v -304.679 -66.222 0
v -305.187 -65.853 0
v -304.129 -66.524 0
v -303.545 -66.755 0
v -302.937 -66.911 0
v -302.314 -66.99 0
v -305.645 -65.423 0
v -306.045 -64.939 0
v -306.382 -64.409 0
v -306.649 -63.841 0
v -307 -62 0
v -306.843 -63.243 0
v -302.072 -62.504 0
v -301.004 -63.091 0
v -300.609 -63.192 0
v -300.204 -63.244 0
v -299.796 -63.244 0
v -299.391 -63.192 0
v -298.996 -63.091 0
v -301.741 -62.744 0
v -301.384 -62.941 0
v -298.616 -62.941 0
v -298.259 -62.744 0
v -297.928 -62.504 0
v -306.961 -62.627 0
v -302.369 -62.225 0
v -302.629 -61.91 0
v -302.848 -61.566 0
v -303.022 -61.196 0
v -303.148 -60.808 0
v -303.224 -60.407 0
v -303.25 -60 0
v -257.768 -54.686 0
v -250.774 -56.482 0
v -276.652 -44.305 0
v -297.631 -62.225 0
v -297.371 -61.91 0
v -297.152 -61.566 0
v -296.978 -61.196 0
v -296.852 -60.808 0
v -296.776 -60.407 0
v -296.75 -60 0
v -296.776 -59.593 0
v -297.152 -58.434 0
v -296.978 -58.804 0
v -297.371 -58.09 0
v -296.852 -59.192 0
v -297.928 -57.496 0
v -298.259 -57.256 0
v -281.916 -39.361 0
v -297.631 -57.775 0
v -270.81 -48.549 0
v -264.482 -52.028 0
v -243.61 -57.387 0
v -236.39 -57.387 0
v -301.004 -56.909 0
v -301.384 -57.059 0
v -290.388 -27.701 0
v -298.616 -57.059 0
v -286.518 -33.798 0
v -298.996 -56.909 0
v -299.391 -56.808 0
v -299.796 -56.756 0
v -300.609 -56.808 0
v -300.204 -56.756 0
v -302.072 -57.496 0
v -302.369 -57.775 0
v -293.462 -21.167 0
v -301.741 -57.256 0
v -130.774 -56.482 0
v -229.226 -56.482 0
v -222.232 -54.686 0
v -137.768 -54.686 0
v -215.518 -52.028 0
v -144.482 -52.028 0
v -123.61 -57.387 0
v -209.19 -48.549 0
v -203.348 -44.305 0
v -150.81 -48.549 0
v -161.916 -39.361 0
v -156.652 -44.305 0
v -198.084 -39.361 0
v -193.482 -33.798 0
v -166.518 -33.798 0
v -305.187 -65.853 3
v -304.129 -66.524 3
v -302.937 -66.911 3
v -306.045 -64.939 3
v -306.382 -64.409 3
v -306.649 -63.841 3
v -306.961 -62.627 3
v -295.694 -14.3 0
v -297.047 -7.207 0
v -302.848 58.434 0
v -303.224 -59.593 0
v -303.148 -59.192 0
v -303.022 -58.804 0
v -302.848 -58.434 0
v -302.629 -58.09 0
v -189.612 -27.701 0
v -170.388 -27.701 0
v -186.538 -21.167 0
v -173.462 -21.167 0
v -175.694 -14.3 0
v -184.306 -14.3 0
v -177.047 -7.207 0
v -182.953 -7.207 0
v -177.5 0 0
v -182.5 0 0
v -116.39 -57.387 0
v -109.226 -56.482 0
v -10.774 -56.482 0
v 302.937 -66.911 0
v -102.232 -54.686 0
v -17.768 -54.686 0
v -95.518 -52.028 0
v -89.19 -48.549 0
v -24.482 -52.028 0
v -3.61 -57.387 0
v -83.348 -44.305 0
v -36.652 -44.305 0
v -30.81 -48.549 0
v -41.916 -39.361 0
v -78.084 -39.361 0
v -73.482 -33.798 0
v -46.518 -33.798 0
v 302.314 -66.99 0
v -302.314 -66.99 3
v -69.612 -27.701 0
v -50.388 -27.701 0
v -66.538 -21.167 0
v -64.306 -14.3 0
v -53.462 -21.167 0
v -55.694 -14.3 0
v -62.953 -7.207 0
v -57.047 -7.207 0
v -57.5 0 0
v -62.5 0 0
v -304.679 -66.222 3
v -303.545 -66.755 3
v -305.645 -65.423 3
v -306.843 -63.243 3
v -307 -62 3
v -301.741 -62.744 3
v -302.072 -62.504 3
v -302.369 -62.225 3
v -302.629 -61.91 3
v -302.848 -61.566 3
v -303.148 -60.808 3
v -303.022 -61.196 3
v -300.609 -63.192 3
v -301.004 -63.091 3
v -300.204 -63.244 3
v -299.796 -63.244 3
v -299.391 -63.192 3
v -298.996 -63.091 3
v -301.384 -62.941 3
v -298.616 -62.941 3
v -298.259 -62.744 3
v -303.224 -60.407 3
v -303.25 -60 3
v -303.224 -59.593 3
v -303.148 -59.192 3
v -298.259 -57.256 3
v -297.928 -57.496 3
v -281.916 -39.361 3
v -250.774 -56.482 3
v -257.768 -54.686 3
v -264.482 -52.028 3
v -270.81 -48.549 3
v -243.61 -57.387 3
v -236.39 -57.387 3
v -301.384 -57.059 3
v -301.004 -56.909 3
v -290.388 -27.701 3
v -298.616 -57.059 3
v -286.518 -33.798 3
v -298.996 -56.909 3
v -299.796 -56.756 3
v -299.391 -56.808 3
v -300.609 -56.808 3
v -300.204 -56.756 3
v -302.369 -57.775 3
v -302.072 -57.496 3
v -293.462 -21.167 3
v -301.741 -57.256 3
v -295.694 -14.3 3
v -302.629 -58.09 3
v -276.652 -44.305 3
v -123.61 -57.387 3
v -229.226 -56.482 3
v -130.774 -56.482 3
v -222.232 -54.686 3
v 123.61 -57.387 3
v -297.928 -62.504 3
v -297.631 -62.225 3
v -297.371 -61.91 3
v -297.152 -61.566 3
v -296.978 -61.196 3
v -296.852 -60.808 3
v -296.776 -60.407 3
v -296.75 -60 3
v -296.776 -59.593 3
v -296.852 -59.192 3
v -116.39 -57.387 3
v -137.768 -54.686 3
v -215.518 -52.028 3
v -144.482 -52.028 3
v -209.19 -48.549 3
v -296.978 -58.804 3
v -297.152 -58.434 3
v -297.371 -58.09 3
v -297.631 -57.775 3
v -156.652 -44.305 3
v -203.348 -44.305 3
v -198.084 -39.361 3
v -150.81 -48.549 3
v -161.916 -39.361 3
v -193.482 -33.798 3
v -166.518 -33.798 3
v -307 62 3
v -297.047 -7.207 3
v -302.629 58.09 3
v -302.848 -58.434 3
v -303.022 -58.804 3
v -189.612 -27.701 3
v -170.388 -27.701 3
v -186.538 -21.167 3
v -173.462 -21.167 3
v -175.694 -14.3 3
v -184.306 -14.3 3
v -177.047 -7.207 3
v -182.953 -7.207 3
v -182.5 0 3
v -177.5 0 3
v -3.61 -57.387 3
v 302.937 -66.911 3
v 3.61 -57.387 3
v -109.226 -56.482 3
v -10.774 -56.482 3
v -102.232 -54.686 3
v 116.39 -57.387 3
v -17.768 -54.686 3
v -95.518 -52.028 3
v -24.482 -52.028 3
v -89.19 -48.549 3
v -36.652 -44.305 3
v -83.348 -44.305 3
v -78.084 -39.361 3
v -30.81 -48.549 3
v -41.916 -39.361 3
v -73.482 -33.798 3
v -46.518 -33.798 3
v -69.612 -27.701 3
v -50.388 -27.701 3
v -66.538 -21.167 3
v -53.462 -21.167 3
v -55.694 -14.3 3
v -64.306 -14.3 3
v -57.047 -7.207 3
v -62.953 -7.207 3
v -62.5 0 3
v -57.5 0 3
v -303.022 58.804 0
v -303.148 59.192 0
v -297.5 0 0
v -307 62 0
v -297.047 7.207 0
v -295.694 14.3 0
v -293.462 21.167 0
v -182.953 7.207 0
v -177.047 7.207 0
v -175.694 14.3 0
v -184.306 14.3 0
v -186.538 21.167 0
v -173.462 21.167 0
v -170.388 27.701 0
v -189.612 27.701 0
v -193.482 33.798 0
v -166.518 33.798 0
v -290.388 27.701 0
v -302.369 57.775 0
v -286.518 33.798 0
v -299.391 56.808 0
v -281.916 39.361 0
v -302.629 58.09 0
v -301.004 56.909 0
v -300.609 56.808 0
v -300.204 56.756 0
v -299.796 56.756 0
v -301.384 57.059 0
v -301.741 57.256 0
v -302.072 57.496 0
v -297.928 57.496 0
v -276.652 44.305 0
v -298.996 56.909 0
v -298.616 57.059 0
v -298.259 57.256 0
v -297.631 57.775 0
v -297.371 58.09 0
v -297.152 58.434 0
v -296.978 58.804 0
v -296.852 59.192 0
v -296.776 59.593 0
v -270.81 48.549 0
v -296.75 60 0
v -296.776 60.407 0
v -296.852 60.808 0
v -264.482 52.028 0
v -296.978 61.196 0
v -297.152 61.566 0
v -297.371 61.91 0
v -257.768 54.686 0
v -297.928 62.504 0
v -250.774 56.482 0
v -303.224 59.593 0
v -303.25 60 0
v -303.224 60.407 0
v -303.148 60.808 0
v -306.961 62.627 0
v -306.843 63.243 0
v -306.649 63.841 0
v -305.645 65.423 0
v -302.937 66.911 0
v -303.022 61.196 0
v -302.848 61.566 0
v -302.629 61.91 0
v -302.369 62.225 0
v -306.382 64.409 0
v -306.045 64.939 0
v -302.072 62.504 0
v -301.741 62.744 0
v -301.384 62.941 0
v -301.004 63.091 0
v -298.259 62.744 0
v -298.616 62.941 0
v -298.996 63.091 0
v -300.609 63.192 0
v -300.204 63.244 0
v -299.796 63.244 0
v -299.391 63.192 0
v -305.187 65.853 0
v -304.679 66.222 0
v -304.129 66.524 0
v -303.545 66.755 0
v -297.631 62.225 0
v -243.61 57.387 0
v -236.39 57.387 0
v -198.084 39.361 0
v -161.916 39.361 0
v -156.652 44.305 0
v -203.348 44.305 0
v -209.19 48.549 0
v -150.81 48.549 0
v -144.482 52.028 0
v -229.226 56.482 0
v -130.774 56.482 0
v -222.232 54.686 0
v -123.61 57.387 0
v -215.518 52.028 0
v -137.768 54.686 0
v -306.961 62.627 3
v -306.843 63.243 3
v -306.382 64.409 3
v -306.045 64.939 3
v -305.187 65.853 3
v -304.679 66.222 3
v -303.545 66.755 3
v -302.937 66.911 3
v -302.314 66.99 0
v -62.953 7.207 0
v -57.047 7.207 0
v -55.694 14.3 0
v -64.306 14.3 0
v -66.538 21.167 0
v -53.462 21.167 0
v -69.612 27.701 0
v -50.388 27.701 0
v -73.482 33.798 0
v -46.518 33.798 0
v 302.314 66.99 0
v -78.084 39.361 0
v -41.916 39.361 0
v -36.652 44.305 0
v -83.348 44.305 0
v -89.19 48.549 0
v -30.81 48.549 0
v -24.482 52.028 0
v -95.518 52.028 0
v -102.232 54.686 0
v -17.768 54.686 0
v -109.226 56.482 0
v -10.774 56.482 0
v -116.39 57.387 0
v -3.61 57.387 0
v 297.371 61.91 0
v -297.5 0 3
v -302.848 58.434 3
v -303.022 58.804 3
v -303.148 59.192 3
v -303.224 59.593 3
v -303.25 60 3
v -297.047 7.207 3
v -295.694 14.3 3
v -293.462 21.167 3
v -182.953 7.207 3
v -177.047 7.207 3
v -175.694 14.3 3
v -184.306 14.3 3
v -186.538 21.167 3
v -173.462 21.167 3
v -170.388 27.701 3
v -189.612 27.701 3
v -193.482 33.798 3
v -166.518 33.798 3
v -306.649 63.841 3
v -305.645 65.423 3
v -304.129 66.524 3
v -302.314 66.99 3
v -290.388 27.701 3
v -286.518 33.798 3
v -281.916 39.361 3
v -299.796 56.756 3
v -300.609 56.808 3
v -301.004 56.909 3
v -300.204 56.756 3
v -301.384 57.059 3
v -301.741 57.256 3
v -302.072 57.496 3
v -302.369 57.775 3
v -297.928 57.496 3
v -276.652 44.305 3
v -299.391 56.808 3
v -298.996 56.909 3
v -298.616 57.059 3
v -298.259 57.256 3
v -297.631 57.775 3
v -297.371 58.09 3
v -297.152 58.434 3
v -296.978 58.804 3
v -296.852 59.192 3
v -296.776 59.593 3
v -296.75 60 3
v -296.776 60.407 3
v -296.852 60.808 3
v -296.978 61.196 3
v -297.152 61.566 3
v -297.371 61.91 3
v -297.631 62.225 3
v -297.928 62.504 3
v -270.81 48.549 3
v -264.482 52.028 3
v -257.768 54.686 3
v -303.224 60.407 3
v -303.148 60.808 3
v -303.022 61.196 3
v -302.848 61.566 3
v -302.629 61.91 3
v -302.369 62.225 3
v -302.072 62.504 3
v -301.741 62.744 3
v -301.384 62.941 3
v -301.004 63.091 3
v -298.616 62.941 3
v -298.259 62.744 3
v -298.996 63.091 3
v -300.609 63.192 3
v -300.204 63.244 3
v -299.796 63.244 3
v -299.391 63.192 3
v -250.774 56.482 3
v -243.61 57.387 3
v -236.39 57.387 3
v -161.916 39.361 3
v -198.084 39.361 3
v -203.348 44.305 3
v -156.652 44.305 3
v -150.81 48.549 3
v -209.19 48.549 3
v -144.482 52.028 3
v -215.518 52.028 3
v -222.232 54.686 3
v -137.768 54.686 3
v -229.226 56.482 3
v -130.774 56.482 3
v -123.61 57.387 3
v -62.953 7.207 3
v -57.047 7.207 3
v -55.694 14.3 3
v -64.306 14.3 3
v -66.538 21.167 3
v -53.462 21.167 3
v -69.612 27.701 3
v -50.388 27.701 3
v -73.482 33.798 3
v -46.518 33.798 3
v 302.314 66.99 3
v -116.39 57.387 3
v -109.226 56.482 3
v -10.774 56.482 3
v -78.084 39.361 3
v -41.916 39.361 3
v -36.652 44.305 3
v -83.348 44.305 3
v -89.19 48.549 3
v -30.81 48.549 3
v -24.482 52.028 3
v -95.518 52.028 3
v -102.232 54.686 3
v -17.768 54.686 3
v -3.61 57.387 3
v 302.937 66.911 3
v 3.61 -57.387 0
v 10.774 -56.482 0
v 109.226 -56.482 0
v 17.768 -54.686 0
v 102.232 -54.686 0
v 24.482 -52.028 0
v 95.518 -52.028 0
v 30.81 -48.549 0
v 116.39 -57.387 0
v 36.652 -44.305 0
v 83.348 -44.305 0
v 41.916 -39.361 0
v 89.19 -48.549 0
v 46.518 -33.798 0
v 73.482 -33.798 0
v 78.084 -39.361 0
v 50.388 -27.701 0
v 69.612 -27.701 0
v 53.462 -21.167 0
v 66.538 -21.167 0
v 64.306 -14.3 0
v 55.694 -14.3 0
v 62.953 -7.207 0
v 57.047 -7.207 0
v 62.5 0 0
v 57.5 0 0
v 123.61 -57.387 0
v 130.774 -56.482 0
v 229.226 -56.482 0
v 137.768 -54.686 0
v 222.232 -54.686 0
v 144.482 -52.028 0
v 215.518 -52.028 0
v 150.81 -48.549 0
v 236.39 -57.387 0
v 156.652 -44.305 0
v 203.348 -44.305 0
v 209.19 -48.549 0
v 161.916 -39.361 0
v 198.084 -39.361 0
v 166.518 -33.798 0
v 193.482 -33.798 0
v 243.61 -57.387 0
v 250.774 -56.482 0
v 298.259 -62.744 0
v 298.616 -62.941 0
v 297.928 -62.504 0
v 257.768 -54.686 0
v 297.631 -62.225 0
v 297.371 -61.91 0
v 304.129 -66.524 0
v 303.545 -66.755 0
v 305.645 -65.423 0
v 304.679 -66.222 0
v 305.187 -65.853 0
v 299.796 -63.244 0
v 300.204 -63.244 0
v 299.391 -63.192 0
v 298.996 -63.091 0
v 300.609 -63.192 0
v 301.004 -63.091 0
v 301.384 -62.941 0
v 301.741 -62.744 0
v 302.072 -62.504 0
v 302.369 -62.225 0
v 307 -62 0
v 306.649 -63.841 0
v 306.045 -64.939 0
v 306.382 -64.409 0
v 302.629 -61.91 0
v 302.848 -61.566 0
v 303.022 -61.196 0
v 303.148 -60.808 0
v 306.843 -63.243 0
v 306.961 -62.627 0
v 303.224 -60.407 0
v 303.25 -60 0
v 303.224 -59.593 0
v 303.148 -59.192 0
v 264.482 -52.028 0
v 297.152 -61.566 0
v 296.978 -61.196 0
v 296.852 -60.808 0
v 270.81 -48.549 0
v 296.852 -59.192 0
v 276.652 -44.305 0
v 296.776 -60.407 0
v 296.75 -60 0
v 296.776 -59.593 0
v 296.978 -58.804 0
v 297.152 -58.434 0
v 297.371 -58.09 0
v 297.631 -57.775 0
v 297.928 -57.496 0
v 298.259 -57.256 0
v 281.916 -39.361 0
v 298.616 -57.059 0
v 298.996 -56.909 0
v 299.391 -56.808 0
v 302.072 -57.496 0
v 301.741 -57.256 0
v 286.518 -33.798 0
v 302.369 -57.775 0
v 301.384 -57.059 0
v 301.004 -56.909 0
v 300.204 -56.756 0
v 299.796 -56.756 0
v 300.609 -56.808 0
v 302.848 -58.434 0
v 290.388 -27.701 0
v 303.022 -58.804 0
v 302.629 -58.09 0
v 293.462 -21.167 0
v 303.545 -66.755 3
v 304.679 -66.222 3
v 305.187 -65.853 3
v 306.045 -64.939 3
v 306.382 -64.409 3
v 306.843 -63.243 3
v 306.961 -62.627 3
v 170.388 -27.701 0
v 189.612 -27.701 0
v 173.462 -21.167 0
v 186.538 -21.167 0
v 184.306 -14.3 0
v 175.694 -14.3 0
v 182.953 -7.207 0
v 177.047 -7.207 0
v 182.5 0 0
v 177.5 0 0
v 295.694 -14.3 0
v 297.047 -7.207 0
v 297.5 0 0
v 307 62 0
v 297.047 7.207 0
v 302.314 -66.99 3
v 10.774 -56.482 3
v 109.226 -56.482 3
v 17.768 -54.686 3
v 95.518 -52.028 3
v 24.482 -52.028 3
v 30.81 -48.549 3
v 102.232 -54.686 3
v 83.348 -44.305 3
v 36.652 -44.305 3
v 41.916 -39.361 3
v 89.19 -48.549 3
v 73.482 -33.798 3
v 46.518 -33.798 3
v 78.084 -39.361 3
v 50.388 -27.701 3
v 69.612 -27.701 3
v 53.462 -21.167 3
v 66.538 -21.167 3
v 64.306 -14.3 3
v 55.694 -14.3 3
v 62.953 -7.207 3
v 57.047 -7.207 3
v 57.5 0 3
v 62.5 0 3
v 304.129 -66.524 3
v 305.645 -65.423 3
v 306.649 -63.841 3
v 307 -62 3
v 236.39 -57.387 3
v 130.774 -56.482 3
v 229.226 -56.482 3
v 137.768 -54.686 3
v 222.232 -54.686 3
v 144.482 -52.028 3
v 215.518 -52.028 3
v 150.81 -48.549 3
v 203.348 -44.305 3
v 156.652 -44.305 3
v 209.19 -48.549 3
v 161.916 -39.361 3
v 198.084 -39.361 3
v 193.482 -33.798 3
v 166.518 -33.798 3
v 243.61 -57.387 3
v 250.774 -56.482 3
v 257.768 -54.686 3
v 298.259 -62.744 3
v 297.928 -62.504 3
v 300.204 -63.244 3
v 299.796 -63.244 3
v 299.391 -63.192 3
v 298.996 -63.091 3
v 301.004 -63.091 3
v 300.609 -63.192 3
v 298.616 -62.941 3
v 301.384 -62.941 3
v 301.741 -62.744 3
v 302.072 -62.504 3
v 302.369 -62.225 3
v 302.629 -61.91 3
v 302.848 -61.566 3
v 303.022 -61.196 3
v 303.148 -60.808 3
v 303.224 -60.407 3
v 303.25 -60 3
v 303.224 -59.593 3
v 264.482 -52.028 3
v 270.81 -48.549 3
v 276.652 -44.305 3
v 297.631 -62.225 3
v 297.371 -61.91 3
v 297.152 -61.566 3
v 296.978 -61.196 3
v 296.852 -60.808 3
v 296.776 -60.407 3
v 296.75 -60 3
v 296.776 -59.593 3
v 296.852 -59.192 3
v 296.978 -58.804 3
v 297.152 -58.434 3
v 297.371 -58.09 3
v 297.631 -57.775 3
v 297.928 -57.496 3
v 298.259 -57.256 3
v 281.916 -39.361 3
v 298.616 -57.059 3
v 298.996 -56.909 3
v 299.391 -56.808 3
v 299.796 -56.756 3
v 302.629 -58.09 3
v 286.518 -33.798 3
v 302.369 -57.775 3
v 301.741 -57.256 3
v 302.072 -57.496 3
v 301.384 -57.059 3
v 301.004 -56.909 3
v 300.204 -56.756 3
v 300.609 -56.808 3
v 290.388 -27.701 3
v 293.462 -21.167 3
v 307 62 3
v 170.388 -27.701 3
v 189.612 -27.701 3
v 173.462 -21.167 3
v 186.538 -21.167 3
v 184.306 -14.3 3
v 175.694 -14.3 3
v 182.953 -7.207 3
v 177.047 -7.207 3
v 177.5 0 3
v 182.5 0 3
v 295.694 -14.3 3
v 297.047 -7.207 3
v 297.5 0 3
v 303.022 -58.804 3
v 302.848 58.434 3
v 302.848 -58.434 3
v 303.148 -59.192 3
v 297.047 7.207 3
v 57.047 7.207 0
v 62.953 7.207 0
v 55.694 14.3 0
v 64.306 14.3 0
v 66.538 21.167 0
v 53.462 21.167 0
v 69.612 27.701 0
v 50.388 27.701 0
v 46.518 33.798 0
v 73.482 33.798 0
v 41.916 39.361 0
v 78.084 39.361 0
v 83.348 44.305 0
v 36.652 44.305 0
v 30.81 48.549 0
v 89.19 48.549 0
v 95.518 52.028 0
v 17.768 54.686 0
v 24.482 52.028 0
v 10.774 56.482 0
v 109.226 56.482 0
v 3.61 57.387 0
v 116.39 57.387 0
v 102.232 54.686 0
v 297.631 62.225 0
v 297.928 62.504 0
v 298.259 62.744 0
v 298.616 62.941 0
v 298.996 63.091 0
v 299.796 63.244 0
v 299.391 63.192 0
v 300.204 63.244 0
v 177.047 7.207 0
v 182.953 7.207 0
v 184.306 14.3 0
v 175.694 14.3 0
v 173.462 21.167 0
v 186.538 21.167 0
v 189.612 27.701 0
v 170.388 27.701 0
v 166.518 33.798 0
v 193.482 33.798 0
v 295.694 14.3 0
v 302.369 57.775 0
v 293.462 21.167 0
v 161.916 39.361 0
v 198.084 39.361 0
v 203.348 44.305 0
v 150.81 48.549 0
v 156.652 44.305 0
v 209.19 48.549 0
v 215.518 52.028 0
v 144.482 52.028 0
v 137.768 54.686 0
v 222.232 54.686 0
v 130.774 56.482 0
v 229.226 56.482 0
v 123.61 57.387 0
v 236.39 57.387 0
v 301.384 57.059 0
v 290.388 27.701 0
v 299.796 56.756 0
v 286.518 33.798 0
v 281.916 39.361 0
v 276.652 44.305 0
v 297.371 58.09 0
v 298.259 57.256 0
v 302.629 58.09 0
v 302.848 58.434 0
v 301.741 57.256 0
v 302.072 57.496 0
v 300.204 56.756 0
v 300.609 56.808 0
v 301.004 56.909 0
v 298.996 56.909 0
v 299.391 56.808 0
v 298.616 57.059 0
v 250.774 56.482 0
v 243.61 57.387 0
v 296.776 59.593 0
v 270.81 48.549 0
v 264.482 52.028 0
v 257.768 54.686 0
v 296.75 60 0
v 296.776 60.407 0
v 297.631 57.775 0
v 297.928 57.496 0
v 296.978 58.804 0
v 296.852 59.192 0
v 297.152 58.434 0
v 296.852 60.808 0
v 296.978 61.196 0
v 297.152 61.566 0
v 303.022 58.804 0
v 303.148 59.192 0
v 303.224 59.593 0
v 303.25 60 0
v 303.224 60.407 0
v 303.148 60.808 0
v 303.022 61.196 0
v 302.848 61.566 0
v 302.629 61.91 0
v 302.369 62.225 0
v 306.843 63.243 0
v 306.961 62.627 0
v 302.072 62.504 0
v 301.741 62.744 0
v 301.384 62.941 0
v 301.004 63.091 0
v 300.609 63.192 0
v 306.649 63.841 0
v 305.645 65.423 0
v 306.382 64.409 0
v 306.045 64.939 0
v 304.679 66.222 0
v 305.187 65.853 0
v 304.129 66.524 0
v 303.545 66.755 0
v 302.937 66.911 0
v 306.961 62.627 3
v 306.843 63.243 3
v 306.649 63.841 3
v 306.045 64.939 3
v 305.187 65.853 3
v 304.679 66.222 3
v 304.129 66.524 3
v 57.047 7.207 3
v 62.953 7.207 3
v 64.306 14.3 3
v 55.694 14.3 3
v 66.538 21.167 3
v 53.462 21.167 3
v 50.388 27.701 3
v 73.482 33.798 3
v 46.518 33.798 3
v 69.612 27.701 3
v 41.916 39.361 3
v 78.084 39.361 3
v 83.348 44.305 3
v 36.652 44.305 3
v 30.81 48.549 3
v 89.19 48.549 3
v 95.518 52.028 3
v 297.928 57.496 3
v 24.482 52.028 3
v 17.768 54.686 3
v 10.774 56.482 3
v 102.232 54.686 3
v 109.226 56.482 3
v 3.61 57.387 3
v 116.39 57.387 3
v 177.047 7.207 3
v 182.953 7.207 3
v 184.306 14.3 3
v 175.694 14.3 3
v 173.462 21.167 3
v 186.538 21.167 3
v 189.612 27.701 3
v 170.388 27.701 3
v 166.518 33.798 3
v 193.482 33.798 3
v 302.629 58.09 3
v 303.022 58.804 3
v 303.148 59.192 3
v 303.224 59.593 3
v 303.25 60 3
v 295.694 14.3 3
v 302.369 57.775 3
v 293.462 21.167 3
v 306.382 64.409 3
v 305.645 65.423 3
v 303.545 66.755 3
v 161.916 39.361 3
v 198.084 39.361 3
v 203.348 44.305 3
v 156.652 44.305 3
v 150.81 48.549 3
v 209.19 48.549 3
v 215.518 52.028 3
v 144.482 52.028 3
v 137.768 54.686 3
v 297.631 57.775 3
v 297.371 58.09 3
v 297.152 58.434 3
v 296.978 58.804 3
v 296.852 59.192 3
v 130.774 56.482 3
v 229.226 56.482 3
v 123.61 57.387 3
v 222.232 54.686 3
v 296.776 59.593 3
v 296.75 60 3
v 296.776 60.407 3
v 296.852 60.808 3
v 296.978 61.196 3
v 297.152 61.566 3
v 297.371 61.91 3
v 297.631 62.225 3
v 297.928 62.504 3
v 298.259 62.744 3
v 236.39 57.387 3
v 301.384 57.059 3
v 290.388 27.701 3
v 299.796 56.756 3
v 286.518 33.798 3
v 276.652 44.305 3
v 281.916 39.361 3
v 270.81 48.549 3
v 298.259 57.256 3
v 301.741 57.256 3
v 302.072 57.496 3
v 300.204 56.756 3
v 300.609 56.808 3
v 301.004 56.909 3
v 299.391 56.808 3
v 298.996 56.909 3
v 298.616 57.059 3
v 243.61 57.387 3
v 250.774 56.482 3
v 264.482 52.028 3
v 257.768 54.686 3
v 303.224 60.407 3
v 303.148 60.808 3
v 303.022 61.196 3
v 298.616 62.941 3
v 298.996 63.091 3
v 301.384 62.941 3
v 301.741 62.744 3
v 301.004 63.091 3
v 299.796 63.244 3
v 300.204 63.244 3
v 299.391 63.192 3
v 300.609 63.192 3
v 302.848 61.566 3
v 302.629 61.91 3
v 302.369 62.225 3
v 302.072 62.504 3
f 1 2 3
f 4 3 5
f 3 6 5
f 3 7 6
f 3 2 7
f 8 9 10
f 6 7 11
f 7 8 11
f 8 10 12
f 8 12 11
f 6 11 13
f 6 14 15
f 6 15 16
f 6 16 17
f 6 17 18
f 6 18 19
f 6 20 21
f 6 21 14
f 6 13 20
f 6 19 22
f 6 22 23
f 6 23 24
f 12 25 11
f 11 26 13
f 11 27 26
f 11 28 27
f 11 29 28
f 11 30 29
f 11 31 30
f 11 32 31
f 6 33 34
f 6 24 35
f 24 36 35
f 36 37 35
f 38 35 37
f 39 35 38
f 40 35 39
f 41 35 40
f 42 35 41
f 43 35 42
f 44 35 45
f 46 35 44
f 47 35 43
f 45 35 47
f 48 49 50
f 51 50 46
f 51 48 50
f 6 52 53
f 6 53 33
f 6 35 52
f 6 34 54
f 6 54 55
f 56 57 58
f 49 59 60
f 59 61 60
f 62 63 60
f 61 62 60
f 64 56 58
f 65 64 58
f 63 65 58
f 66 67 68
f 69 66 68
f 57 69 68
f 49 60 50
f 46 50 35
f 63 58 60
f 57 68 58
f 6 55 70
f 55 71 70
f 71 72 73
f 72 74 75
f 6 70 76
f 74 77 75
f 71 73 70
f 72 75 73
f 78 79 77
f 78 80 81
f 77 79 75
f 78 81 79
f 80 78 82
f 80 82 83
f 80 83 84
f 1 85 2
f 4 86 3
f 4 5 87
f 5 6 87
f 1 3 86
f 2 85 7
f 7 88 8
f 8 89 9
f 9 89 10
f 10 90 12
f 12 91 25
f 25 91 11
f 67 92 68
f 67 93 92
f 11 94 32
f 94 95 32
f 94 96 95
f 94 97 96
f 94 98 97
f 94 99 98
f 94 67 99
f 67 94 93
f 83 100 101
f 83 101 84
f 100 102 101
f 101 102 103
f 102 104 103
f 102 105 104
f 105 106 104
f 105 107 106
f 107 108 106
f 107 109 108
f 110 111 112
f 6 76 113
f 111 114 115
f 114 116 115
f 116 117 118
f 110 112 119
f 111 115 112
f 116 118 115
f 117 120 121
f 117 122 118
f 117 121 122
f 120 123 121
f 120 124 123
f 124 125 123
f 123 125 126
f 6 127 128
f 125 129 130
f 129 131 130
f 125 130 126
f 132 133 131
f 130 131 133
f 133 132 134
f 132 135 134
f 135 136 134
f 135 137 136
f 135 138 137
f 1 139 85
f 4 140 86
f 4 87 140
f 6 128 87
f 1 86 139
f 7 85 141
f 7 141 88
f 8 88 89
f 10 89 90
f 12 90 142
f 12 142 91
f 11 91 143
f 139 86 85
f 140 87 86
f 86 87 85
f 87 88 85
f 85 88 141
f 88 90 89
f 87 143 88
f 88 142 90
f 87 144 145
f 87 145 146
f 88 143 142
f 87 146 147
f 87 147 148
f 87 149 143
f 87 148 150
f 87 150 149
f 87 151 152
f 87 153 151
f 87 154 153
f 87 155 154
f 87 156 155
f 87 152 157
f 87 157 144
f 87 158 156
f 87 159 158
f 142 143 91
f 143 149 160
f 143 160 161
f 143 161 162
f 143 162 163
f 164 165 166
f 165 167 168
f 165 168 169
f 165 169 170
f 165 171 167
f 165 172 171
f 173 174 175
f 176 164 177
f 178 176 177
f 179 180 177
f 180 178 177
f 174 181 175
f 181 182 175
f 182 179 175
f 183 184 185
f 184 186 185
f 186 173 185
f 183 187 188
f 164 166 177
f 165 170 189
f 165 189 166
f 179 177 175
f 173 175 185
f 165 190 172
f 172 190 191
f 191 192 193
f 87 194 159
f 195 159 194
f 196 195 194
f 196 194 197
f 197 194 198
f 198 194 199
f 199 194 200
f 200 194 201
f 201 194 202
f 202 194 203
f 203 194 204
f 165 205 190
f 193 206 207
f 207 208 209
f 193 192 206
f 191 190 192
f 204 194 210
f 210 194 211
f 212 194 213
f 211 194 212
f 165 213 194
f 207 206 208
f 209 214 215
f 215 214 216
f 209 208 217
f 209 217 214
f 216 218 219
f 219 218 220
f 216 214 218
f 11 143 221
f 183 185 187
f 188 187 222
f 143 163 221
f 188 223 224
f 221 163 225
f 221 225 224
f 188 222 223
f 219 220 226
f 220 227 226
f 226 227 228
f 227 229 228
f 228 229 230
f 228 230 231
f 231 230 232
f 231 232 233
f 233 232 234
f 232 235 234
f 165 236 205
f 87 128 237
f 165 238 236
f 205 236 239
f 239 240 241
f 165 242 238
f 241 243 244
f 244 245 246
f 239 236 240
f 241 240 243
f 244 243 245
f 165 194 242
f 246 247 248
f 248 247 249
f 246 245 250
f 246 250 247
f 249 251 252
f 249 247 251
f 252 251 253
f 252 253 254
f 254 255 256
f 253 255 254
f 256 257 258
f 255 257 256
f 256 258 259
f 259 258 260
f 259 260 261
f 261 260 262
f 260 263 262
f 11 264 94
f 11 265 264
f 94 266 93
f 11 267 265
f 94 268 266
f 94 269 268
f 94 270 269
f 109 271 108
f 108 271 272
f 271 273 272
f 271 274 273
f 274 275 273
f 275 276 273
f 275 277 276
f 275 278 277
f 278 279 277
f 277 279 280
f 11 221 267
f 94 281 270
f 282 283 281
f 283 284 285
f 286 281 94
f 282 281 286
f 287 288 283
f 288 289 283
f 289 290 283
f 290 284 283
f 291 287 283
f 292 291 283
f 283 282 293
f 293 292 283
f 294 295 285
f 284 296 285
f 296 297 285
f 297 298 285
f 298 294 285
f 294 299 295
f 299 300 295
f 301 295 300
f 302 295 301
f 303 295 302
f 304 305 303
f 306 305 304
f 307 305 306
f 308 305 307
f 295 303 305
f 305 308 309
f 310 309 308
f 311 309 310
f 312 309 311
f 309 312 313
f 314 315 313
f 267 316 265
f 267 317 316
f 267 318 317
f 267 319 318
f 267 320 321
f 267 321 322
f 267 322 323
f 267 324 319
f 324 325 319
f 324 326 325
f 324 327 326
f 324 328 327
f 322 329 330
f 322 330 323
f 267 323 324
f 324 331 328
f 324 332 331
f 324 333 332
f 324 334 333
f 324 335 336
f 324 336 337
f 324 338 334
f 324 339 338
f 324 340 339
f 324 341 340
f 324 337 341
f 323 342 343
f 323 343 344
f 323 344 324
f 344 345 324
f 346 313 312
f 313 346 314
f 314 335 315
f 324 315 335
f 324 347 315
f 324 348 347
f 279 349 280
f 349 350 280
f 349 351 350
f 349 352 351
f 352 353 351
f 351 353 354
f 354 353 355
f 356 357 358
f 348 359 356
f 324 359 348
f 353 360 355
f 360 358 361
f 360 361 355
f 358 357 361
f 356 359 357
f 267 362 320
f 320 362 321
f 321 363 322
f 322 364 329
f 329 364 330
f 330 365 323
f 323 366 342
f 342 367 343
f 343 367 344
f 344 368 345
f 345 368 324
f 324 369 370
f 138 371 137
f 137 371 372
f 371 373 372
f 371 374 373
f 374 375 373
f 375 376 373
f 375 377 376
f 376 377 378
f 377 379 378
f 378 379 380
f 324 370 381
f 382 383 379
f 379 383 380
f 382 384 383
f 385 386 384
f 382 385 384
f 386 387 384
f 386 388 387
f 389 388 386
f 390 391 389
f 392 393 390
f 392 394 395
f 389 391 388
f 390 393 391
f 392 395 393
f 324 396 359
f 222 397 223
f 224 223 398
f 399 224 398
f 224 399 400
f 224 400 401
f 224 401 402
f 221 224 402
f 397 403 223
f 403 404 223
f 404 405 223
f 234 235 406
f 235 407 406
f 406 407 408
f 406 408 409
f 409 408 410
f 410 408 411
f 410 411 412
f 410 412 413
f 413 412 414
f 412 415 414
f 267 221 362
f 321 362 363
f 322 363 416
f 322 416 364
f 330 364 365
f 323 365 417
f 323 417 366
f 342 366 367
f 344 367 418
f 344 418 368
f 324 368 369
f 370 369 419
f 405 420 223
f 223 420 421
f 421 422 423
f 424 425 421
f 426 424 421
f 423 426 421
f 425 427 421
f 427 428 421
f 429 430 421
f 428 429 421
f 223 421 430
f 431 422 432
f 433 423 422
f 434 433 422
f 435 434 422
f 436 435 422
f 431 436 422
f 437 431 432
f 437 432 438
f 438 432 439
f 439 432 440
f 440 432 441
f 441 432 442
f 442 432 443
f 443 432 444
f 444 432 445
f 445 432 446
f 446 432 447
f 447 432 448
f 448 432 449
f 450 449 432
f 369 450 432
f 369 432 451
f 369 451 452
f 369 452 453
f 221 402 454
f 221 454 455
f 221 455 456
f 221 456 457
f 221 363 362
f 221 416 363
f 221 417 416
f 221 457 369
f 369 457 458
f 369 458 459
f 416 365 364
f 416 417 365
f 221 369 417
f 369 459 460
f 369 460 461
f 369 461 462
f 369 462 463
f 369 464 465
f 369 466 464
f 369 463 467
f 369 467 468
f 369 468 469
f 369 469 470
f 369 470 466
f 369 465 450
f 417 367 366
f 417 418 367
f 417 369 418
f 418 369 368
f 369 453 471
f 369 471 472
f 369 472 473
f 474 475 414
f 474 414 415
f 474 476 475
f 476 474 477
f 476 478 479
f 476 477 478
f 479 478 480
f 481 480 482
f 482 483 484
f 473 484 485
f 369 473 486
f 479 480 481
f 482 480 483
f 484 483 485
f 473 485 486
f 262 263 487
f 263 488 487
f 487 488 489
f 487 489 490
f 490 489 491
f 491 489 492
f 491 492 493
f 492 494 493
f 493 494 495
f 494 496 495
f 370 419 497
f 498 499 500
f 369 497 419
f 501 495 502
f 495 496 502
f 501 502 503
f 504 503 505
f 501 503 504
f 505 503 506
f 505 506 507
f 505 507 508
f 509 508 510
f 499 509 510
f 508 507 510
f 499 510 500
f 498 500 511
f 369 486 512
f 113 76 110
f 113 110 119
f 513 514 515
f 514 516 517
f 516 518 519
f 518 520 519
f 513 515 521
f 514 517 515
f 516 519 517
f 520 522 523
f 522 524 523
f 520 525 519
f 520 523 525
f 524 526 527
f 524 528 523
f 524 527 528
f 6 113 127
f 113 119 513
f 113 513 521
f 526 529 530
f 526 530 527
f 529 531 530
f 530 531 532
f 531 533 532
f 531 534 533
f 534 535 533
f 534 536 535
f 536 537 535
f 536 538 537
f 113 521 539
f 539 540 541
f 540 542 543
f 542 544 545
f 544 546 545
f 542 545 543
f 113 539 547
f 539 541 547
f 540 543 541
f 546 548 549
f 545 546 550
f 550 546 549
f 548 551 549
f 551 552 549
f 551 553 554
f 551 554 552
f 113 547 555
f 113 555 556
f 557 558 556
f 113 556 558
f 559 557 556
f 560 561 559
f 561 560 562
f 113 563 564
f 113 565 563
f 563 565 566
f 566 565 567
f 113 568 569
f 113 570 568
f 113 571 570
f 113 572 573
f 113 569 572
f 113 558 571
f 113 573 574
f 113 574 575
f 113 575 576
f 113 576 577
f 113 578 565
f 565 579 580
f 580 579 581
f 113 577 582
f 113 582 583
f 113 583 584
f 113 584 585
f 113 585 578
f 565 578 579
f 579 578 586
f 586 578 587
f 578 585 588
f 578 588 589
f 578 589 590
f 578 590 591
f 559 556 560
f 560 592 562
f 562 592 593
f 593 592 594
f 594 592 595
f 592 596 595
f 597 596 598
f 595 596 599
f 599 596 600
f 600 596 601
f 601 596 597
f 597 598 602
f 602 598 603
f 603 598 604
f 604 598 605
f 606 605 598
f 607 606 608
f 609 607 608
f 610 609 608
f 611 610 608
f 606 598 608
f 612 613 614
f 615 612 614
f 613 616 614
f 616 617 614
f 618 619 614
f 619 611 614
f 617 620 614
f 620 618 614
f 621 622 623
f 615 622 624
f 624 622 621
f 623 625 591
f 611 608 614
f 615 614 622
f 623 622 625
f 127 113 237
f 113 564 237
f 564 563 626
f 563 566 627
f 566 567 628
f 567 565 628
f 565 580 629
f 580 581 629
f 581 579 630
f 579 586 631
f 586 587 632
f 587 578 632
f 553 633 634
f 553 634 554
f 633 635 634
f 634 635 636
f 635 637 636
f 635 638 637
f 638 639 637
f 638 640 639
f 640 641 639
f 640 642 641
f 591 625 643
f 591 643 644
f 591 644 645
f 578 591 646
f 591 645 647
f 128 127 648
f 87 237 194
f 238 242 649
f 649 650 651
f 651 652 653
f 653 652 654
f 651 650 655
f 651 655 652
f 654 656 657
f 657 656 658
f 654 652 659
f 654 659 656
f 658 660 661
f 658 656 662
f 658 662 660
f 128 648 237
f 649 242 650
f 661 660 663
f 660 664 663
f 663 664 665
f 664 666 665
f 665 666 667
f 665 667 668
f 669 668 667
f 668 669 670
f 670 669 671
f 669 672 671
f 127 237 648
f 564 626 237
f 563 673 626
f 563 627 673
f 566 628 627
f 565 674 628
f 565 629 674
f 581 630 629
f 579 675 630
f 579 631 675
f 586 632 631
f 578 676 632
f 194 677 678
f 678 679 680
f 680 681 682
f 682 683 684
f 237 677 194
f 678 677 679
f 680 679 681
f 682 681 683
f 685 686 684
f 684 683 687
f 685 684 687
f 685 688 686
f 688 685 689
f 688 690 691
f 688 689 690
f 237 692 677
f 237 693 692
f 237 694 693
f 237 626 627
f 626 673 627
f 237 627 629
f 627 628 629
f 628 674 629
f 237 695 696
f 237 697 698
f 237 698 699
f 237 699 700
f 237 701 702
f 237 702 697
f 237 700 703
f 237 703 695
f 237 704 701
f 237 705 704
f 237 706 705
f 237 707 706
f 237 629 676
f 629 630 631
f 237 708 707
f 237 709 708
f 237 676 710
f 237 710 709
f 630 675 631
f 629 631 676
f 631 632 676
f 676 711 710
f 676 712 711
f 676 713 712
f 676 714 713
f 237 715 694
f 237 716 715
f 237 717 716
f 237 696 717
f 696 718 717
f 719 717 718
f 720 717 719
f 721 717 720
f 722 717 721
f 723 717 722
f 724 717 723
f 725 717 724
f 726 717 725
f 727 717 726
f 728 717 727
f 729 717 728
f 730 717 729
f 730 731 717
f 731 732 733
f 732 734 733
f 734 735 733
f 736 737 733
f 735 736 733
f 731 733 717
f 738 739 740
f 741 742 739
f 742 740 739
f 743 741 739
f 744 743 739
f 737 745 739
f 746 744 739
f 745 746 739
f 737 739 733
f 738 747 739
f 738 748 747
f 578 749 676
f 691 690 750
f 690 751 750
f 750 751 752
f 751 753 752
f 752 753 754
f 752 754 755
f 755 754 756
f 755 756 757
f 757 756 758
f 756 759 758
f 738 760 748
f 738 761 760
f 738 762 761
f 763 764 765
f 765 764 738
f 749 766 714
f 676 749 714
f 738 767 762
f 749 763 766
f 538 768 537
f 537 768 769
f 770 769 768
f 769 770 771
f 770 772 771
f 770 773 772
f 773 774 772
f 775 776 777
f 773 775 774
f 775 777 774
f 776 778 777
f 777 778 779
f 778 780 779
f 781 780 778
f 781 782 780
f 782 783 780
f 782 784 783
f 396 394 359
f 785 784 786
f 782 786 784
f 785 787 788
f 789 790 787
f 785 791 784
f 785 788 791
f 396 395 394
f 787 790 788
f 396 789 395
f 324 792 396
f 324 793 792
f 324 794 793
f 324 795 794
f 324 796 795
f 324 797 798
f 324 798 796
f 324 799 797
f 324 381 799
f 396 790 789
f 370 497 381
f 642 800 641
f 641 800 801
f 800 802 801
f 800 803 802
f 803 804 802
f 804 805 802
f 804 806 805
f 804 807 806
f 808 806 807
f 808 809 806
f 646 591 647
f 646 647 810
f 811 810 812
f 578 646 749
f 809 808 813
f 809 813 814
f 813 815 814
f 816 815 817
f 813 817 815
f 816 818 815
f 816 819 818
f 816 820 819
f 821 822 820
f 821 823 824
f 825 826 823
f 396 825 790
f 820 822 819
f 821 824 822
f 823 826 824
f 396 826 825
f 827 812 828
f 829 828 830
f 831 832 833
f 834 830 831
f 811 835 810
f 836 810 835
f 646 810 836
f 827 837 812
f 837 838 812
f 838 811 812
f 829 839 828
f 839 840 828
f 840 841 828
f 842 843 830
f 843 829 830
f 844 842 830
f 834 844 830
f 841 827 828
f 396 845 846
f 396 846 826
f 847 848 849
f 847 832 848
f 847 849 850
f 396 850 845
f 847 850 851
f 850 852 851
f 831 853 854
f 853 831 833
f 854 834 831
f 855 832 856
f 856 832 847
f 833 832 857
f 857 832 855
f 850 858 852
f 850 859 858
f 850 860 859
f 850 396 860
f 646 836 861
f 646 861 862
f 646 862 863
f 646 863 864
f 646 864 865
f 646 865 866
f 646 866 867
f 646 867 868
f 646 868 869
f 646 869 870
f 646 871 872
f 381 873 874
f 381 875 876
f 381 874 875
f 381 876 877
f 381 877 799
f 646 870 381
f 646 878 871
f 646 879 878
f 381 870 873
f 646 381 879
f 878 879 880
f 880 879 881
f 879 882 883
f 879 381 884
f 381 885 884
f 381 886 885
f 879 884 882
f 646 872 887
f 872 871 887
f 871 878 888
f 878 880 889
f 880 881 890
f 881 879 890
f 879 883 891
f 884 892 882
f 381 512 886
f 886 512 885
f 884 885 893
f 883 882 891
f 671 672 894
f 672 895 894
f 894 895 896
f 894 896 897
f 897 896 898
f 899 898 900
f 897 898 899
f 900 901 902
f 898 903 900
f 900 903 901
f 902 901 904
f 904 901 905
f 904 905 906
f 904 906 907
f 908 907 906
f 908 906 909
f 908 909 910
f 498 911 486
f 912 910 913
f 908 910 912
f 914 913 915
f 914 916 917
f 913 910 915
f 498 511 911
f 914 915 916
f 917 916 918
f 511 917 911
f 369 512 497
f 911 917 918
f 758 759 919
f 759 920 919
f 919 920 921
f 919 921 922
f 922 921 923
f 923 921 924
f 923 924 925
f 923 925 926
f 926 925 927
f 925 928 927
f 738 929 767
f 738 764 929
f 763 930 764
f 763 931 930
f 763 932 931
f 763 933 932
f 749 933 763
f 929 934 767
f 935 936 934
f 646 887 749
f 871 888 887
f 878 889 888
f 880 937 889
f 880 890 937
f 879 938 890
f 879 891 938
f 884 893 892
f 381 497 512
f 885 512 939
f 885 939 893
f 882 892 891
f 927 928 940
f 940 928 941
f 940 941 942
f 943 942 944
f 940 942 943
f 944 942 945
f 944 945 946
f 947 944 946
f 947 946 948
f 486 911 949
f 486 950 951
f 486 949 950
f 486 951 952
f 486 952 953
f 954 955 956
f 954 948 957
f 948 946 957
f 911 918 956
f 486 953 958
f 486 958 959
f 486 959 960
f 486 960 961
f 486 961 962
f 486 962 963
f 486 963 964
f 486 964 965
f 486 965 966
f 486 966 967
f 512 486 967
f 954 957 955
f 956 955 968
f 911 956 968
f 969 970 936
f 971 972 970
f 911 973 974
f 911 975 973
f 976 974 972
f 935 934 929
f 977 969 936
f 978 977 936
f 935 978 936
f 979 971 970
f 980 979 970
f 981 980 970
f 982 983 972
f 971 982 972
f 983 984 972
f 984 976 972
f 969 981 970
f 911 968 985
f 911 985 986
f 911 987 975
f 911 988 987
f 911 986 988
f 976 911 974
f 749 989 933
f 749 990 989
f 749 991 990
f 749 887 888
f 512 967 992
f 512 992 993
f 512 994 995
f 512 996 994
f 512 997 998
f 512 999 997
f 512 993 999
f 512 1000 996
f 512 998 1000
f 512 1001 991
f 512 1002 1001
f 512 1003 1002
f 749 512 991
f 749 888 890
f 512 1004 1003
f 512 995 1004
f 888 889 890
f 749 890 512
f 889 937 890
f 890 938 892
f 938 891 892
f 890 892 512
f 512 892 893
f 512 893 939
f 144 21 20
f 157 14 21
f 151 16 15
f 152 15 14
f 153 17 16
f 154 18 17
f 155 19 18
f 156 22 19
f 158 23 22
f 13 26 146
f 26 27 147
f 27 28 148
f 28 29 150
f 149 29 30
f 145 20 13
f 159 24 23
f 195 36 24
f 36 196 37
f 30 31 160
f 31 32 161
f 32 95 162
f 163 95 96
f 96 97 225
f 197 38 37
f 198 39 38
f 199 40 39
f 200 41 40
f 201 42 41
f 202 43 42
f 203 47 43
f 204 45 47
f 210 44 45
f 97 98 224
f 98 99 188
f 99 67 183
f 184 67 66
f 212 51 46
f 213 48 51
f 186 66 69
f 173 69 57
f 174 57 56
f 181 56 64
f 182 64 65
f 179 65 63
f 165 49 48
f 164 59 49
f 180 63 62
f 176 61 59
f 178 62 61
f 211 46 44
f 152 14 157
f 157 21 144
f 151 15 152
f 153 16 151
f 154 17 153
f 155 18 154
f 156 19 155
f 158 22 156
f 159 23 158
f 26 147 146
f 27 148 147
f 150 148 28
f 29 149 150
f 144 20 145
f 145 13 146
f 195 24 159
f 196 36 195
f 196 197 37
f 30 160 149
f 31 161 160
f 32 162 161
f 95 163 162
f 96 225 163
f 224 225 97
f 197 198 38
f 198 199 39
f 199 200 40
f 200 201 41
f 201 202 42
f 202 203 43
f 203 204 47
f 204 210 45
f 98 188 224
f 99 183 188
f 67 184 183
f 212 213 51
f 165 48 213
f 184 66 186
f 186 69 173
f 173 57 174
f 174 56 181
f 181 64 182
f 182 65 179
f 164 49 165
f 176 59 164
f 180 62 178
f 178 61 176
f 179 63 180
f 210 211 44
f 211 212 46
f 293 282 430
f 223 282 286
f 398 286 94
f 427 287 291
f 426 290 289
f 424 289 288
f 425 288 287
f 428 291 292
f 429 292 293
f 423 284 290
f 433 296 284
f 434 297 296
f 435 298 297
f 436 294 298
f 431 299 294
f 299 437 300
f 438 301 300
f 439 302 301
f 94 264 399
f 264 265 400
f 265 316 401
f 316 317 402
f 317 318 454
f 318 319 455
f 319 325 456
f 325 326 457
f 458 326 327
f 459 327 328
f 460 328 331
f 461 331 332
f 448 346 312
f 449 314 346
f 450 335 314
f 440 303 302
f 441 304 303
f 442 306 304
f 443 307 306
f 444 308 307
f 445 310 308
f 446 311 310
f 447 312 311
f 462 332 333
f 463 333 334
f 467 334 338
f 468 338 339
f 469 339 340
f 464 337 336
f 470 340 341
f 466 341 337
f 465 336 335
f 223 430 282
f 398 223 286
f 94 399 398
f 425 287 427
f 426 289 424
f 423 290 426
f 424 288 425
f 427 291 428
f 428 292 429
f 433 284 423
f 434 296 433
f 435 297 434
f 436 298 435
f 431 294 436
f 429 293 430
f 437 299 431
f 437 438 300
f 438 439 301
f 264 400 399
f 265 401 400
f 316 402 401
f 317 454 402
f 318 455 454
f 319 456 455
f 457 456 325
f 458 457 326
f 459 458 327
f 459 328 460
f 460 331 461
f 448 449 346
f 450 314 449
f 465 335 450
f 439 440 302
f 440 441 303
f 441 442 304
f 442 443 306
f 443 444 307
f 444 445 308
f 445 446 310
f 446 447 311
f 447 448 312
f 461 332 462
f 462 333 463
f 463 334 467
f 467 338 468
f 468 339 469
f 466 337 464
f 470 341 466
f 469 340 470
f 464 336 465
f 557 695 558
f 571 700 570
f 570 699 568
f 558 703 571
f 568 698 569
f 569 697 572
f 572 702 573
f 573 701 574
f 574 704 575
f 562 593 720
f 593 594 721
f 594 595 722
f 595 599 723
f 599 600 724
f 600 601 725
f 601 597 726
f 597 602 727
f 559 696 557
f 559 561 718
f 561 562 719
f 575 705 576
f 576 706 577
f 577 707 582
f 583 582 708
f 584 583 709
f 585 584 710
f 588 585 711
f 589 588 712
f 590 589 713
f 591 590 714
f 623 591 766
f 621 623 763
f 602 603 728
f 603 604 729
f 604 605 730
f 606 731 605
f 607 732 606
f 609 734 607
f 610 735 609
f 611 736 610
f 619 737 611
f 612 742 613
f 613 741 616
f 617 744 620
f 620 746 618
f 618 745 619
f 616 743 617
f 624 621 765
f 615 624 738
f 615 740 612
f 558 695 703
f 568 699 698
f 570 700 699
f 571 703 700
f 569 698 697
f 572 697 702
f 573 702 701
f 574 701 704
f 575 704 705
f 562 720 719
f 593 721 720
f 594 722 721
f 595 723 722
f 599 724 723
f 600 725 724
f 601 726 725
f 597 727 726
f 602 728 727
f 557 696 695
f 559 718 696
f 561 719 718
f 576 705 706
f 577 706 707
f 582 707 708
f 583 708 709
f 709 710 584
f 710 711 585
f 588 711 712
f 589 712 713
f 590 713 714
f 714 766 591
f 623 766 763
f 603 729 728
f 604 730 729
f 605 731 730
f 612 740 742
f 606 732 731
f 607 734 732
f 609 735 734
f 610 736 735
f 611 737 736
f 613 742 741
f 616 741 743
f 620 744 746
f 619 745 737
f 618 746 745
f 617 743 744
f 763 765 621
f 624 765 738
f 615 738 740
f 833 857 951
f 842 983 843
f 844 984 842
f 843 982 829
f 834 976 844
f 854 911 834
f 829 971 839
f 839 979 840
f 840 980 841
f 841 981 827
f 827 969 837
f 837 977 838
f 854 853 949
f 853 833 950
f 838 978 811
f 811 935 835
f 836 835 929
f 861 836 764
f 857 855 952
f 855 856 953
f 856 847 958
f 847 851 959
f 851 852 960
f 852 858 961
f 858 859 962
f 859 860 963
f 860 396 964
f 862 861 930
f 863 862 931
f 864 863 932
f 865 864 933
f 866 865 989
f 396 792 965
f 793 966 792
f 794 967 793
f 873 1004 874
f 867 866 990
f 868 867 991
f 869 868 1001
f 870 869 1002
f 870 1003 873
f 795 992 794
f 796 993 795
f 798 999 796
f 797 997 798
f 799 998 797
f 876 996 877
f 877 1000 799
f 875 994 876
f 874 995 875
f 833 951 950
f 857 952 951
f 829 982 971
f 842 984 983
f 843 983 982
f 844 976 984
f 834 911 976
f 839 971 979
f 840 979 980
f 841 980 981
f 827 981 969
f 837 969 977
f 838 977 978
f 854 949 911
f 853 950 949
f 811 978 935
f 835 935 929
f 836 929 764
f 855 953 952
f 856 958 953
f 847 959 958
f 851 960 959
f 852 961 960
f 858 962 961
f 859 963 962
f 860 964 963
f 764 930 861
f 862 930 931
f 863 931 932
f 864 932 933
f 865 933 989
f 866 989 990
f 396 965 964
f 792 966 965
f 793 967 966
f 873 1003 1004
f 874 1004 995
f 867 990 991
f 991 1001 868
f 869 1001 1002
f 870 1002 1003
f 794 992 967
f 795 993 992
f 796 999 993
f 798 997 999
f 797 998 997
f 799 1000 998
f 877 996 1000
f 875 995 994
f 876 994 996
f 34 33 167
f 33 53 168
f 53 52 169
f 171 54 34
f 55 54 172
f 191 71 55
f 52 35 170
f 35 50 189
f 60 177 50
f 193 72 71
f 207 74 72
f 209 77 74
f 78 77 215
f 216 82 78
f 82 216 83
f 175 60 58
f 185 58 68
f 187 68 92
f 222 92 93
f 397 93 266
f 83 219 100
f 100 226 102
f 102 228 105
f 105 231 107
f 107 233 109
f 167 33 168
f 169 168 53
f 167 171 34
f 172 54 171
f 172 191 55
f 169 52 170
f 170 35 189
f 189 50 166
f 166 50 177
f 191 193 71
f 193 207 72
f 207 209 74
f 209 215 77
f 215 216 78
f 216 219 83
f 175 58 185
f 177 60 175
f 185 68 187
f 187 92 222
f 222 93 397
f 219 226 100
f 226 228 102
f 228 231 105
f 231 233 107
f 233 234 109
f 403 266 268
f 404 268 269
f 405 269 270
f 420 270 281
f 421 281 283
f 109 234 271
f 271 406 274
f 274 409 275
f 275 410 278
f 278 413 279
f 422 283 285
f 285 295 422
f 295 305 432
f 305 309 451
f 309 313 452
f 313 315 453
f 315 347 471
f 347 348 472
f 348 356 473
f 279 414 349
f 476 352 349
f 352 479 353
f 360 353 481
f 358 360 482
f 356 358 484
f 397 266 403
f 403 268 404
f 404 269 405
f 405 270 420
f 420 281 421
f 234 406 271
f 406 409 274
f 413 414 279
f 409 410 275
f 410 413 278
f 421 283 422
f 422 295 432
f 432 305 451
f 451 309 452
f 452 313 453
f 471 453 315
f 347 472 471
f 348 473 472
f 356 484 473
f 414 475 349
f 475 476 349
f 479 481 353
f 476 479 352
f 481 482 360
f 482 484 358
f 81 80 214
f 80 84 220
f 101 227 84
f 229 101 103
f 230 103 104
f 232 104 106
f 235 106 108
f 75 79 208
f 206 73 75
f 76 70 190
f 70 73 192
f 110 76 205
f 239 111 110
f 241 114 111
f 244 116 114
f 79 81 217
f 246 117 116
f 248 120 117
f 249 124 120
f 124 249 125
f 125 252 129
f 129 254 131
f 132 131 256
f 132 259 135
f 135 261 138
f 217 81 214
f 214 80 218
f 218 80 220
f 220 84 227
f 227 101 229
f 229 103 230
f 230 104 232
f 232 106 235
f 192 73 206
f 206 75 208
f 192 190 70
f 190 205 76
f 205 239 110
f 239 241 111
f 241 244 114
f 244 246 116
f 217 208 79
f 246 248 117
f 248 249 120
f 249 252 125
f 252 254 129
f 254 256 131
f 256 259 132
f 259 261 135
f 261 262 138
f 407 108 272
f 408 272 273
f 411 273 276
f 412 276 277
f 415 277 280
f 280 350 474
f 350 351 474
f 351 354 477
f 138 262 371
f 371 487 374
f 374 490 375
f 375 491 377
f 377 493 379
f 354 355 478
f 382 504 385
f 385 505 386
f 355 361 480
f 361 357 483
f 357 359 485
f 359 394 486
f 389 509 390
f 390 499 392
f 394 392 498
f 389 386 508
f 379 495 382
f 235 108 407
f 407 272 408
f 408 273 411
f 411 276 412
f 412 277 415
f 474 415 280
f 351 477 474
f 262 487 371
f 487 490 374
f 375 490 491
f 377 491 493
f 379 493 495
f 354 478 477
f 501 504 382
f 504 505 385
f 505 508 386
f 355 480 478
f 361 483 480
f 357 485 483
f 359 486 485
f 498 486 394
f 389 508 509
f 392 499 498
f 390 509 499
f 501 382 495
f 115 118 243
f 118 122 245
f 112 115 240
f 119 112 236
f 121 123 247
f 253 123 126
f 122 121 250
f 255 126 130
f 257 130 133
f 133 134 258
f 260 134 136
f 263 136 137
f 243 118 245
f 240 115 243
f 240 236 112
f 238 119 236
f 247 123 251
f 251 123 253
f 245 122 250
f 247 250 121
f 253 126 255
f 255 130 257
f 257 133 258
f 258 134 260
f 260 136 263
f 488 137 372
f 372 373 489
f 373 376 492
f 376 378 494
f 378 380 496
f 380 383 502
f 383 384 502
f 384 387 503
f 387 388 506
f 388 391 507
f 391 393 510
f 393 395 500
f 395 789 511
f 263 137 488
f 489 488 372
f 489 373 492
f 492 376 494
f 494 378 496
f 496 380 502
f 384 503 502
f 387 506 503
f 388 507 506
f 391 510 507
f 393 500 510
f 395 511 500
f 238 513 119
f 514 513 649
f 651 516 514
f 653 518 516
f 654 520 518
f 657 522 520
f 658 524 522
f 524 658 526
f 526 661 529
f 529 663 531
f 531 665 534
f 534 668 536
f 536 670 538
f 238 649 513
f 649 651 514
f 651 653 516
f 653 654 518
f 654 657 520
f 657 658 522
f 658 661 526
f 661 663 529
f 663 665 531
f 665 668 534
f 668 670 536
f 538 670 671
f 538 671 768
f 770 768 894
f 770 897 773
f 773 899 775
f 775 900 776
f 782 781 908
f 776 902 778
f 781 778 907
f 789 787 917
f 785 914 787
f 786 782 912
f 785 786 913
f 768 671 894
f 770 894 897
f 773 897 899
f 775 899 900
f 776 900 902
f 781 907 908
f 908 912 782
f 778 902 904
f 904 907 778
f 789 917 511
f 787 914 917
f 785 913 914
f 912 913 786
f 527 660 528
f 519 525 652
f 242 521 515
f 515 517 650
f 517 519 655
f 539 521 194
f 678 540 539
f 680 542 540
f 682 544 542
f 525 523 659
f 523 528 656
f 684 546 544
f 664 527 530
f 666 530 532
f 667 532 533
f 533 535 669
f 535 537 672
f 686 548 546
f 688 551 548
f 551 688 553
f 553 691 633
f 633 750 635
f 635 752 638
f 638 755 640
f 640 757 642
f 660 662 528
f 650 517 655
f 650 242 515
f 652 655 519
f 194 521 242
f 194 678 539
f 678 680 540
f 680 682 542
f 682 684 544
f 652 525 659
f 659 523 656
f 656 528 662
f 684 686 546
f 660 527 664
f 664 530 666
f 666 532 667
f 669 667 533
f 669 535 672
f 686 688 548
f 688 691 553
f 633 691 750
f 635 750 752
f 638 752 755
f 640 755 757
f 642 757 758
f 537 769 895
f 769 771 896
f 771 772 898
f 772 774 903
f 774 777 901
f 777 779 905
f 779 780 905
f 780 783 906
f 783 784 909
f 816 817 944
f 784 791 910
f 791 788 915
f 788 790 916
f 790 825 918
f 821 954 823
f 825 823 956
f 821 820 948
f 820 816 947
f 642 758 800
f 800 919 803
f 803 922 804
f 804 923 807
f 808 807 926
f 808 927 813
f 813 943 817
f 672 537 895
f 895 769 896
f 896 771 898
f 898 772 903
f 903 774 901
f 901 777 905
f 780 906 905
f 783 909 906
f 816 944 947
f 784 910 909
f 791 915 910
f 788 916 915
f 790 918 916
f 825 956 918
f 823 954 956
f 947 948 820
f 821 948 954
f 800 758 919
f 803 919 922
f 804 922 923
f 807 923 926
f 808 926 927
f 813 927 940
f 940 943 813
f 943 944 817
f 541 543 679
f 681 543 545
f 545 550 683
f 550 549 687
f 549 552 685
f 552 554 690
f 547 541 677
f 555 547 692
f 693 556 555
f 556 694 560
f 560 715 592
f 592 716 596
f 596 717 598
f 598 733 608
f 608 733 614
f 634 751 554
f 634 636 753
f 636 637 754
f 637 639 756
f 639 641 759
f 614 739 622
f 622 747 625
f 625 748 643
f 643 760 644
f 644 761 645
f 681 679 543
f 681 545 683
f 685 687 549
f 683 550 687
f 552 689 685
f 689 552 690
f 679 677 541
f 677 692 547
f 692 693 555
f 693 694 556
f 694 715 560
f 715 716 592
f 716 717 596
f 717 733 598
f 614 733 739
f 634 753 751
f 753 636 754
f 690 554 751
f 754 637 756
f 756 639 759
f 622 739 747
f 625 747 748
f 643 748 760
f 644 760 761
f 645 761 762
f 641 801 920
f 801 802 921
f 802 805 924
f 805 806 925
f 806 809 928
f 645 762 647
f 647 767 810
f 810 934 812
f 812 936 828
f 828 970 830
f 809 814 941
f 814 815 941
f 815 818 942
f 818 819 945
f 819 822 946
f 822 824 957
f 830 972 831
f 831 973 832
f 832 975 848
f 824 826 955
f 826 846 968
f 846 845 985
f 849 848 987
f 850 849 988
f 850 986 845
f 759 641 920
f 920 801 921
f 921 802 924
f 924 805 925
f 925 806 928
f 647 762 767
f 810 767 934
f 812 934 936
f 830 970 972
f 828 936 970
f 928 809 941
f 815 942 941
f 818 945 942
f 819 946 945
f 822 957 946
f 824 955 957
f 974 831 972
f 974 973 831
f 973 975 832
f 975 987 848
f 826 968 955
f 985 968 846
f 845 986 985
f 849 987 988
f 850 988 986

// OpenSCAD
$fn = 50;

difference() {
	union() {
		hull() {
			translate(v = [-302.0, 62.0, 0]) {
				cylinder(h = 3, r = 5);
			}
			translate(v = [302.0, 62.0, 0]) {
				cylinder(h = 3, r = 5);
			}
			translate(v = [-302.0, -62.0, 0]) {
				cylinder(h = 3, r = 5);
			}
			translate(v = [302.0, -62.0, 0]) {
				cylinder(h = 3, r = 5);
			}
		}
	}
	union() {
		translate(v = [-300.0, -60.0, -100.0]) {
			cylinder(h = 200, r = 3.25);
		}
		translate(v = [-300.0, 60.0, -100.0]) {
			cylinder(h = 200, r = 3.25);
		}
		translate(v = [300.0, -60.0, -100.0]) {
			cylinder(h = 200, r = 3.25);
		}
		translate(v = [300.0, 60.0, -100.0]) {
			cylinder(h = 200, r = 3.25);
		}
		translate(v = [-300.0, -60.0, -100.0]) {
			cylinder(h = 200, r = 1.8);
		}
		translate(v = [-300.0, 60.0, -100.0]) {
			cylinder(h = 200, r = 1.8);
		}
		translate(v = [300.0, -60.0, -100.0]) {
			cylinder(h = 200, r = 1.8);
		}
		translate(v = [300.0, 60.0, -100.0]) {
			cylinder(h = 200, r = 1.8);
		}
		translate(v = [-240.0, 0, 0.0]) {
			cylinder(h = 3, r = 57.5);
		}
		translate(v = [-120.0, 0, 0.0]) {
			cylinder(h = 3, r = 57.5);
		}
		cylinder(h = 3, r = 57.5);
		translate(v = [120.0, 0, 0.0]) {
			cylinder(h = 3, r = 57.5);
		}
		translate(v = [240.0, 0, 0.0]) {
			cylinder(h = 3, r = 57.5);
		}
	}
}
